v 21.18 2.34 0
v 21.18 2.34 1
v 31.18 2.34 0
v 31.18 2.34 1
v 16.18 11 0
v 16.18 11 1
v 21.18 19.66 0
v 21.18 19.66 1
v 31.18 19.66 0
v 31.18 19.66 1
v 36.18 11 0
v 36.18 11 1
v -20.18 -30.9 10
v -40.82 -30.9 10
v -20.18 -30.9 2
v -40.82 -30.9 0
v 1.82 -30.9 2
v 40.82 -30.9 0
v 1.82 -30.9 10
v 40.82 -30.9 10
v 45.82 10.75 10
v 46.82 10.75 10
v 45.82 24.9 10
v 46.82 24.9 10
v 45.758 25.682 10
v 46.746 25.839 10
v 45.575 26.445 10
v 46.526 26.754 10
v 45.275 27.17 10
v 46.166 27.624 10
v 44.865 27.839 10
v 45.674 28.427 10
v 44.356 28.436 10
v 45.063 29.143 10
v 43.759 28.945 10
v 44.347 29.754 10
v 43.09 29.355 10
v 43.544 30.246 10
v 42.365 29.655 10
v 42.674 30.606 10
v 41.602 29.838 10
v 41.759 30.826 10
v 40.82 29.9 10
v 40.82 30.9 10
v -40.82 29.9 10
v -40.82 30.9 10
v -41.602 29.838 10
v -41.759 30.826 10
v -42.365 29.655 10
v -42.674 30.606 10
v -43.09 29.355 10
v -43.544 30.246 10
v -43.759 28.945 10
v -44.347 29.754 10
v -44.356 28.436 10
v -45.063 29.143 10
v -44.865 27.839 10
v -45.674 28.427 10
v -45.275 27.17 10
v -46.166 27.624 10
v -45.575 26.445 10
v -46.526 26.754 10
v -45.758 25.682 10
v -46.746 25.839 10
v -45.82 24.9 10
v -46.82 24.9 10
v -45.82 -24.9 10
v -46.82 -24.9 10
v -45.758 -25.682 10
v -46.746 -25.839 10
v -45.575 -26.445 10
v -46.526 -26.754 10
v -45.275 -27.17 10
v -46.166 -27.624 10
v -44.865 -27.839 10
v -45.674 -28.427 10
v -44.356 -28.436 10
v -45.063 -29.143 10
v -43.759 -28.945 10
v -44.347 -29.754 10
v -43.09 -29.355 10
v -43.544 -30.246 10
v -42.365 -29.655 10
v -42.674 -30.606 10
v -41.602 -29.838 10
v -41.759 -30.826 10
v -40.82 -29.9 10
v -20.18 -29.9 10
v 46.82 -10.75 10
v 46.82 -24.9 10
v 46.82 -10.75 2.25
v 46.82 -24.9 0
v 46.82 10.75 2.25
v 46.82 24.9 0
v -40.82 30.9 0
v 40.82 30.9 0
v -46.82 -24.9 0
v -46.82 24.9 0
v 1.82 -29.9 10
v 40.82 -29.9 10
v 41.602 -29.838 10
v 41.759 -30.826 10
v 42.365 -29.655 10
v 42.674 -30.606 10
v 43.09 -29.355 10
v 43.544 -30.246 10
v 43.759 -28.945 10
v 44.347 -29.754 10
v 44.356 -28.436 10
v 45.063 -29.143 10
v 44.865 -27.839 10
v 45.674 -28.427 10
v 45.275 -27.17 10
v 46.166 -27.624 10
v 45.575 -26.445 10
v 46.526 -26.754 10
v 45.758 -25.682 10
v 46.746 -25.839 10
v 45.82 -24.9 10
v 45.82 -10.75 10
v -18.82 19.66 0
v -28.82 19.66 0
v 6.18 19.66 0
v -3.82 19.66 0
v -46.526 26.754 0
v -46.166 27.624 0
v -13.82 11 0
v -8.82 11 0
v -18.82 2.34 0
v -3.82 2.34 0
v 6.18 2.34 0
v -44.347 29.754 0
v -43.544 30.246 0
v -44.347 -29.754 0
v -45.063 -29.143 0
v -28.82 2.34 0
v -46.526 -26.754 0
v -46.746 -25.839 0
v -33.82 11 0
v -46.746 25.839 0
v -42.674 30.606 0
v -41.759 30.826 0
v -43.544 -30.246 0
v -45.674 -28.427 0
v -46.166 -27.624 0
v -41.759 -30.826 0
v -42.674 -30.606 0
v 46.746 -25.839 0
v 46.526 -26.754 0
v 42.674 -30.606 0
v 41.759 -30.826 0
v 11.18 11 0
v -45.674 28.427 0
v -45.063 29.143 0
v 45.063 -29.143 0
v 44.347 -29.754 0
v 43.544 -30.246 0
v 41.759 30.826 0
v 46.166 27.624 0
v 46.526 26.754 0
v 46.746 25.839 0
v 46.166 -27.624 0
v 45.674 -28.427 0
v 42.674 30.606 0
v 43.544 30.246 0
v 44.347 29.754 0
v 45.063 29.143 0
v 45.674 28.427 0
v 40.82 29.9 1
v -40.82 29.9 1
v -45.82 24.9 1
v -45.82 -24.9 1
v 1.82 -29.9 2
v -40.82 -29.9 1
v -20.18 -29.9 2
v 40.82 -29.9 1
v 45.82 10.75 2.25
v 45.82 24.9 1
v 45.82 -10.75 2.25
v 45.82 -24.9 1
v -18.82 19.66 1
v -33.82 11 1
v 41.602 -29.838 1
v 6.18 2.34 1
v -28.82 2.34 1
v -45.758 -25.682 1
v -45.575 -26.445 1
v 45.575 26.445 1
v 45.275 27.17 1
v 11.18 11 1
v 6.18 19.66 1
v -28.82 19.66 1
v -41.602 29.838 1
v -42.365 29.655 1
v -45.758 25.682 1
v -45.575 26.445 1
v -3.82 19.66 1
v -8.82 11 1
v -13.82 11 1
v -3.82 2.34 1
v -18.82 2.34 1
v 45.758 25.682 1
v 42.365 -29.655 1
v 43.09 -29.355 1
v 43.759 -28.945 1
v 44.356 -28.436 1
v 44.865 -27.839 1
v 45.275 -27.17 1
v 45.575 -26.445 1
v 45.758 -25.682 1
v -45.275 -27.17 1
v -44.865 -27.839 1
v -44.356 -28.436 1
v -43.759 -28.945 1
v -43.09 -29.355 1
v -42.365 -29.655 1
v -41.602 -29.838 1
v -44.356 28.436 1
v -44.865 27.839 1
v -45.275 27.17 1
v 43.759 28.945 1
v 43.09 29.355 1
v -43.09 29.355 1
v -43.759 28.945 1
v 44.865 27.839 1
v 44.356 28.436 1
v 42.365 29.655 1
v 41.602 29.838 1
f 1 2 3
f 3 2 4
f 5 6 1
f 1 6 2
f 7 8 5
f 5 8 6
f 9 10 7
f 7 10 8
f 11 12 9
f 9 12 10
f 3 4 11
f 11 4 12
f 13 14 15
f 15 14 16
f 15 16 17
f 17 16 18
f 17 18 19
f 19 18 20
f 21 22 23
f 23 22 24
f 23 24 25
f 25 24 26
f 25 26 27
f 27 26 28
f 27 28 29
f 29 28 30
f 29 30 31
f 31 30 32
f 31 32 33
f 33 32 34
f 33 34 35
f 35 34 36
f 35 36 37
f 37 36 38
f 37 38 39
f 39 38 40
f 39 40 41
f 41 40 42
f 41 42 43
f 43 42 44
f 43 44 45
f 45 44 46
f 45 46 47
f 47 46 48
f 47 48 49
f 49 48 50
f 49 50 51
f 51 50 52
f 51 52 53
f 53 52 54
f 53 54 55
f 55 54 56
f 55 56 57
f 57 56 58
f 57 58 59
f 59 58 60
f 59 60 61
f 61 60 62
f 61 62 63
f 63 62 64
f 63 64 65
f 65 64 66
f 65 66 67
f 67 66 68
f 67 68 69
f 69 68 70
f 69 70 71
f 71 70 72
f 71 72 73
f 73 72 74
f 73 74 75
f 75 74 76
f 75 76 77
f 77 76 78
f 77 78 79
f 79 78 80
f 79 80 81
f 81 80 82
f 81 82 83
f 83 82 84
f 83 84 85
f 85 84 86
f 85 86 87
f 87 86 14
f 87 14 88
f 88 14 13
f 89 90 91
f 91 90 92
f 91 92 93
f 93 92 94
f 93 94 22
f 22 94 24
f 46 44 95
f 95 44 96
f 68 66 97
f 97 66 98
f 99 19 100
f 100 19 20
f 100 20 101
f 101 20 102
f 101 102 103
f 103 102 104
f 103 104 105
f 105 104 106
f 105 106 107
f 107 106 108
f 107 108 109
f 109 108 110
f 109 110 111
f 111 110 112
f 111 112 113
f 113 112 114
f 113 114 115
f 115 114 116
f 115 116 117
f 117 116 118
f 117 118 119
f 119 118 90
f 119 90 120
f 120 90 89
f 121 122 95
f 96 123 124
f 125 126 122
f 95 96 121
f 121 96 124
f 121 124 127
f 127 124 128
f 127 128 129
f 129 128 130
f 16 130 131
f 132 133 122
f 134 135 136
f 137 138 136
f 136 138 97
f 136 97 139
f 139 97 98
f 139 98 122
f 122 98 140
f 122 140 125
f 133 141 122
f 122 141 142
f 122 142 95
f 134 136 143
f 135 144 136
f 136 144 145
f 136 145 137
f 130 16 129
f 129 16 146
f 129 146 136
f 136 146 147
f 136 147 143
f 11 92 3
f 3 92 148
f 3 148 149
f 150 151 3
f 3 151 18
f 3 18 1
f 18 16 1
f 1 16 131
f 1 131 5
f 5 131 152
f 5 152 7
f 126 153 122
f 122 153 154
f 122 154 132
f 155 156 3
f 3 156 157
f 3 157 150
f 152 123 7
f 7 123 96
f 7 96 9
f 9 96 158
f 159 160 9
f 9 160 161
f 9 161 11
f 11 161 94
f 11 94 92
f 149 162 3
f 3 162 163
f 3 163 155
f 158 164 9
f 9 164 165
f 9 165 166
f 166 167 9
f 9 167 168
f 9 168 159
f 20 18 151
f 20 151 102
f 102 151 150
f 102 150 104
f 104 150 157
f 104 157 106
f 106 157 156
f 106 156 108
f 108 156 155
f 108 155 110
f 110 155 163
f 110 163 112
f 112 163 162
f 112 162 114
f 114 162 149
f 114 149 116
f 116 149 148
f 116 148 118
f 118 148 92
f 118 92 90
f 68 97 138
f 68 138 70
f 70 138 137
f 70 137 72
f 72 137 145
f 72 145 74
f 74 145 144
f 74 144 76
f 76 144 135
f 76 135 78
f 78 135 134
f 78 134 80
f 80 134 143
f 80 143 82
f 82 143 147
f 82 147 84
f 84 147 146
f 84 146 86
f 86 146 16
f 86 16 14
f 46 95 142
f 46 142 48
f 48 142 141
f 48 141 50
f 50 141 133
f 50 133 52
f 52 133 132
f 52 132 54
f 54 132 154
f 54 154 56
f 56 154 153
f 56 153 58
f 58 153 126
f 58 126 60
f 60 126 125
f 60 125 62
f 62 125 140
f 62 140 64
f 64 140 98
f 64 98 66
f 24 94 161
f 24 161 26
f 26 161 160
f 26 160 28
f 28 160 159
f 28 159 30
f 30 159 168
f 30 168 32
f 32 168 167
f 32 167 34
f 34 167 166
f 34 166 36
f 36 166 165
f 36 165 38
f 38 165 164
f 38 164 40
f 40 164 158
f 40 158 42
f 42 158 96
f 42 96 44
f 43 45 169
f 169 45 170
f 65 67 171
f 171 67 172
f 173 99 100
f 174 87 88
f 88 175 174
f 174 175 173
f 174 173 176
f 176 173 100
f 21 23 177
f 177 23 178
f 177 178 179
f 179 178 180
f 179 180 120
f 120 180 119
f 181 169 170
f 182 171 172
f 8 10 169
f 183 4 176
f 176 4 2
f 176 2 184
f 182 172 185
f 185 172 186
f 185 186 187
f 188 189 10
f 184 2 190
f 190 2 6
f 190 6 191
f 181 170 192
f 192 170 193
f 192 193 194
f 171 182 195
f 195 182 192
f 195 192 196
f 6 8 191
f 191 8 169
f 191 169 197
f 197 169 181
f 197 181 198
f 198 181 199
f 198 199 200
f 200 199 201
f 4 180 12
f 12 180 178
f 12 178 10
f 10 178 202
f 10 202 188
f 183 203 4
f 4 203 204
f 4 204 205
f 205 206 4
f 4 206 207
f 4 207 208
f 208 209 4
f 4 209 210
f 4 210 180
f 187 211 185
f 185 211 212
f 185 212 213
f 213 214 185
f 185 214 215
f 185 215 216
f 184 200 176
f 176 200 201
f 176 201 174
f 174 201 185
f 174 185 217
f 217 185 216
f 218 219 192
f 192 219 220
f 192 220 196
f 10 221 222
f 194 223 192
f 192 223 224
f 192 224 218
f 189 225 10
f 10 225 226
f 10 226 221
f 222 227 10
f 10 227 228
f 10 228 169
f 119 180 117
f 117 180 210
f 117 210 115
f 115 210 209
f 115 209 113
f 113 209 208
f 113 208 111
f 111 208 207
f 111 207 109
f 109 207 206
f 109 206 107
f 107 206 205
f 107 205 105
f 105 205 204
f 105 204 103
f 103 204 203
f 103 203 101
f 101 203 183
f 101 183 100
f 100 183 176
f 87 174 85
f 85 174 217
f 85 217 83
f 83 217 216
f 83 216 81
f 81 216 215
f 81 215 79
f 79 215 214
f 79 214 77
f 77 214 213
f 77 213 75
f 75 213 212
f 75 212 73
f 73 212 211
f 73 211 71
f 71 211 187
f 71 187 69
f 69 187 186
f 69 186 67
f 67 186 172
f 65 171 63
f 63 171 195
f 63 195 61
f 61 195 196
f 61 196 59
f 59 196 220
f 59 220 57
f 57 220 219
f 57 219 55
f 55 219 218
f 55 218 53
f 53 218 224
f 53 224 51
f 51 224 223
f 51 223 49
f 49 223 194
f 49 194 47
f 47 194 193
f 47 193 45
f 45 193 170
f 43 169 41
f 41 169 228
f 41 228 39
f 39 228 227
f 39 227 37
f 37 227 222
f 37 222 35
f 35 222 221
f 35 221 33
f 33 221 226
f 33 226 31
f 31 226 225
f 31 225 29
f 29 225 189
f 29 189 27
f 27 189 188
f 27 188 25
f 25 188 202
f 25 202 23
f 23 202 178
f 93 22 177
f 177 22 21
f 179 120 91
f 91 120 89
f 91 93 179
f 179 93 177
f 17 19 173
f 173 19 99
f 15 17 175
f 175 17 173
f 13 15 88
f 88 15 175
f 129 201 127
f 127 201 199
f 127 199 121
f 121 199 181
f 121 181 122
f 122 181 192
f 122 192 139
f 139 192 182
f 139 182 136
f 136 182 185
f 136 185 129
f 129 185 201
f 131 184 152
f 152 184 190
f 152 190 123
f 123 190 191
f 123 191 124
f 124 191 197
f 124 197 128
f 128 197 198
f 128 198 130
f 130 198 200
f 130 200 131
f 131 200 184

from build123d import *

# Parameters (mm, degrees)
SKIZZE1_W                       = 61.8
SKIZZE1_H                       = 93.64
AUFSATZ_LINEAR_AUSTRAGEN1_DEPTH = 10
VERRUNDUNG1_R                   = 6
WANDUNG1_T                      = -1
SKIZZE2_W                       = 21.5
SKIZZE2_H                       = 15.5
SCHNITT_LINEAR_AUSTRAGEN1_DEPTH = 6
SKIZZE3_W                       = 22
SKIZZE3_H                       = 8
SCHNITT_LINEAR_AUSTRAGEN2_DEPTH = 6
SCHNITT_LINEAR_AUSTRAGEN4_DEPTH = 6
LINEARES_MUSTER1_COUNT          = 3
LINEARES_MUSTER1_PITCH          = 25


with BuildPart() as part:
    # Skizze1 → Aufsatz-Linear austragen1 (new body)
    with BuildSketch(Plane(origin=(0, 0, 0), x_dir=(0, 1, 0), z_dir=(0, 0, 1))):
        Rectangle(SKIZZE1_W, SKIZZE1_H)
    extrude(amount=AUFSATZ_LINEAR_AUSTRAGEN1_DEPTH)

    # Verrundung1
    verrundung1_edges = [part.edges().sort_by_distance(p)[0] for p in [
        (46.82, 30.9, 5),
        (46.82, -30.9, 5),
        (-46.82, -30.9, 5),
        (-46.82, 30.9, 5),
    ]]
    fillet(verrundung1_edges, radius=VERRUNDUNG1_R)

    # Wandung1
    wandung1_openings = [part.faces().sort_by_distance(p)[0] for p in [
        (0, 0, 10),
    ]]
    offset(amount=WANDUNG1_T, openings=wandung1_openings, kind=Kind.INTERSECTION)

    # Skizze2 → Schnitt-Linear austragen1 (cut)
    with BuildSketch(Plane.YZ.offset(46.82)):
        with Locations((0, 10)):
            Rectangle(SKIZZE2_W, SKIZZE2_H)
    extrude(amount=-SCHNITT_LINEAR_AUSTRAGEN1_DEPTH, mode=Mode.SUBTRACT)

    # Skizze3 → Schnitt-Linear austragen2 (cut)
    with BuildSketch(Plane.XZ.offset(30.9)):
        with Locations((-9.18, 6)):
            Rectangle(SKIZZE3_W, SKIZZE3_H)
    extrude(amount=-SCHNITT_LINEAR_AUSTRAGEN2_DEPTH, mode=Mode.SUBTRACT)

    # Skizze4 → Schnitt-Linear austragen4 (cut)
    with BuildSketch(Plane(origin=(0, 0, 0), x_dir=(1, 0, 0), z_dir=(0, 0, -1))):
        Polygon((-18.82, -2.339745962), (-28.82, -2.339745962), (-33.82, -11), (-28.82, -19.660254038), (-18.82, -19.660254038), (-13.82, -11), align=None)
    schnitt_linear_austragen4 = extrude(amount=-SCHNITT_LINEAR_AUSTRAGEN4_DEPTH, mode=Mode.SUBTRACT)

    # Lineares Muster1: Schnitt-Linear austragen4 ×3
    with Locations(*[(i * LINEARES_MUSTER1_PITCH, 0, 0) for i in range(1, LINEARES_MUSTER1_COUNT)]):
        add(schnitt_linear_austragen4, mode=Mode.SUBTRACT)


solid = part.part
